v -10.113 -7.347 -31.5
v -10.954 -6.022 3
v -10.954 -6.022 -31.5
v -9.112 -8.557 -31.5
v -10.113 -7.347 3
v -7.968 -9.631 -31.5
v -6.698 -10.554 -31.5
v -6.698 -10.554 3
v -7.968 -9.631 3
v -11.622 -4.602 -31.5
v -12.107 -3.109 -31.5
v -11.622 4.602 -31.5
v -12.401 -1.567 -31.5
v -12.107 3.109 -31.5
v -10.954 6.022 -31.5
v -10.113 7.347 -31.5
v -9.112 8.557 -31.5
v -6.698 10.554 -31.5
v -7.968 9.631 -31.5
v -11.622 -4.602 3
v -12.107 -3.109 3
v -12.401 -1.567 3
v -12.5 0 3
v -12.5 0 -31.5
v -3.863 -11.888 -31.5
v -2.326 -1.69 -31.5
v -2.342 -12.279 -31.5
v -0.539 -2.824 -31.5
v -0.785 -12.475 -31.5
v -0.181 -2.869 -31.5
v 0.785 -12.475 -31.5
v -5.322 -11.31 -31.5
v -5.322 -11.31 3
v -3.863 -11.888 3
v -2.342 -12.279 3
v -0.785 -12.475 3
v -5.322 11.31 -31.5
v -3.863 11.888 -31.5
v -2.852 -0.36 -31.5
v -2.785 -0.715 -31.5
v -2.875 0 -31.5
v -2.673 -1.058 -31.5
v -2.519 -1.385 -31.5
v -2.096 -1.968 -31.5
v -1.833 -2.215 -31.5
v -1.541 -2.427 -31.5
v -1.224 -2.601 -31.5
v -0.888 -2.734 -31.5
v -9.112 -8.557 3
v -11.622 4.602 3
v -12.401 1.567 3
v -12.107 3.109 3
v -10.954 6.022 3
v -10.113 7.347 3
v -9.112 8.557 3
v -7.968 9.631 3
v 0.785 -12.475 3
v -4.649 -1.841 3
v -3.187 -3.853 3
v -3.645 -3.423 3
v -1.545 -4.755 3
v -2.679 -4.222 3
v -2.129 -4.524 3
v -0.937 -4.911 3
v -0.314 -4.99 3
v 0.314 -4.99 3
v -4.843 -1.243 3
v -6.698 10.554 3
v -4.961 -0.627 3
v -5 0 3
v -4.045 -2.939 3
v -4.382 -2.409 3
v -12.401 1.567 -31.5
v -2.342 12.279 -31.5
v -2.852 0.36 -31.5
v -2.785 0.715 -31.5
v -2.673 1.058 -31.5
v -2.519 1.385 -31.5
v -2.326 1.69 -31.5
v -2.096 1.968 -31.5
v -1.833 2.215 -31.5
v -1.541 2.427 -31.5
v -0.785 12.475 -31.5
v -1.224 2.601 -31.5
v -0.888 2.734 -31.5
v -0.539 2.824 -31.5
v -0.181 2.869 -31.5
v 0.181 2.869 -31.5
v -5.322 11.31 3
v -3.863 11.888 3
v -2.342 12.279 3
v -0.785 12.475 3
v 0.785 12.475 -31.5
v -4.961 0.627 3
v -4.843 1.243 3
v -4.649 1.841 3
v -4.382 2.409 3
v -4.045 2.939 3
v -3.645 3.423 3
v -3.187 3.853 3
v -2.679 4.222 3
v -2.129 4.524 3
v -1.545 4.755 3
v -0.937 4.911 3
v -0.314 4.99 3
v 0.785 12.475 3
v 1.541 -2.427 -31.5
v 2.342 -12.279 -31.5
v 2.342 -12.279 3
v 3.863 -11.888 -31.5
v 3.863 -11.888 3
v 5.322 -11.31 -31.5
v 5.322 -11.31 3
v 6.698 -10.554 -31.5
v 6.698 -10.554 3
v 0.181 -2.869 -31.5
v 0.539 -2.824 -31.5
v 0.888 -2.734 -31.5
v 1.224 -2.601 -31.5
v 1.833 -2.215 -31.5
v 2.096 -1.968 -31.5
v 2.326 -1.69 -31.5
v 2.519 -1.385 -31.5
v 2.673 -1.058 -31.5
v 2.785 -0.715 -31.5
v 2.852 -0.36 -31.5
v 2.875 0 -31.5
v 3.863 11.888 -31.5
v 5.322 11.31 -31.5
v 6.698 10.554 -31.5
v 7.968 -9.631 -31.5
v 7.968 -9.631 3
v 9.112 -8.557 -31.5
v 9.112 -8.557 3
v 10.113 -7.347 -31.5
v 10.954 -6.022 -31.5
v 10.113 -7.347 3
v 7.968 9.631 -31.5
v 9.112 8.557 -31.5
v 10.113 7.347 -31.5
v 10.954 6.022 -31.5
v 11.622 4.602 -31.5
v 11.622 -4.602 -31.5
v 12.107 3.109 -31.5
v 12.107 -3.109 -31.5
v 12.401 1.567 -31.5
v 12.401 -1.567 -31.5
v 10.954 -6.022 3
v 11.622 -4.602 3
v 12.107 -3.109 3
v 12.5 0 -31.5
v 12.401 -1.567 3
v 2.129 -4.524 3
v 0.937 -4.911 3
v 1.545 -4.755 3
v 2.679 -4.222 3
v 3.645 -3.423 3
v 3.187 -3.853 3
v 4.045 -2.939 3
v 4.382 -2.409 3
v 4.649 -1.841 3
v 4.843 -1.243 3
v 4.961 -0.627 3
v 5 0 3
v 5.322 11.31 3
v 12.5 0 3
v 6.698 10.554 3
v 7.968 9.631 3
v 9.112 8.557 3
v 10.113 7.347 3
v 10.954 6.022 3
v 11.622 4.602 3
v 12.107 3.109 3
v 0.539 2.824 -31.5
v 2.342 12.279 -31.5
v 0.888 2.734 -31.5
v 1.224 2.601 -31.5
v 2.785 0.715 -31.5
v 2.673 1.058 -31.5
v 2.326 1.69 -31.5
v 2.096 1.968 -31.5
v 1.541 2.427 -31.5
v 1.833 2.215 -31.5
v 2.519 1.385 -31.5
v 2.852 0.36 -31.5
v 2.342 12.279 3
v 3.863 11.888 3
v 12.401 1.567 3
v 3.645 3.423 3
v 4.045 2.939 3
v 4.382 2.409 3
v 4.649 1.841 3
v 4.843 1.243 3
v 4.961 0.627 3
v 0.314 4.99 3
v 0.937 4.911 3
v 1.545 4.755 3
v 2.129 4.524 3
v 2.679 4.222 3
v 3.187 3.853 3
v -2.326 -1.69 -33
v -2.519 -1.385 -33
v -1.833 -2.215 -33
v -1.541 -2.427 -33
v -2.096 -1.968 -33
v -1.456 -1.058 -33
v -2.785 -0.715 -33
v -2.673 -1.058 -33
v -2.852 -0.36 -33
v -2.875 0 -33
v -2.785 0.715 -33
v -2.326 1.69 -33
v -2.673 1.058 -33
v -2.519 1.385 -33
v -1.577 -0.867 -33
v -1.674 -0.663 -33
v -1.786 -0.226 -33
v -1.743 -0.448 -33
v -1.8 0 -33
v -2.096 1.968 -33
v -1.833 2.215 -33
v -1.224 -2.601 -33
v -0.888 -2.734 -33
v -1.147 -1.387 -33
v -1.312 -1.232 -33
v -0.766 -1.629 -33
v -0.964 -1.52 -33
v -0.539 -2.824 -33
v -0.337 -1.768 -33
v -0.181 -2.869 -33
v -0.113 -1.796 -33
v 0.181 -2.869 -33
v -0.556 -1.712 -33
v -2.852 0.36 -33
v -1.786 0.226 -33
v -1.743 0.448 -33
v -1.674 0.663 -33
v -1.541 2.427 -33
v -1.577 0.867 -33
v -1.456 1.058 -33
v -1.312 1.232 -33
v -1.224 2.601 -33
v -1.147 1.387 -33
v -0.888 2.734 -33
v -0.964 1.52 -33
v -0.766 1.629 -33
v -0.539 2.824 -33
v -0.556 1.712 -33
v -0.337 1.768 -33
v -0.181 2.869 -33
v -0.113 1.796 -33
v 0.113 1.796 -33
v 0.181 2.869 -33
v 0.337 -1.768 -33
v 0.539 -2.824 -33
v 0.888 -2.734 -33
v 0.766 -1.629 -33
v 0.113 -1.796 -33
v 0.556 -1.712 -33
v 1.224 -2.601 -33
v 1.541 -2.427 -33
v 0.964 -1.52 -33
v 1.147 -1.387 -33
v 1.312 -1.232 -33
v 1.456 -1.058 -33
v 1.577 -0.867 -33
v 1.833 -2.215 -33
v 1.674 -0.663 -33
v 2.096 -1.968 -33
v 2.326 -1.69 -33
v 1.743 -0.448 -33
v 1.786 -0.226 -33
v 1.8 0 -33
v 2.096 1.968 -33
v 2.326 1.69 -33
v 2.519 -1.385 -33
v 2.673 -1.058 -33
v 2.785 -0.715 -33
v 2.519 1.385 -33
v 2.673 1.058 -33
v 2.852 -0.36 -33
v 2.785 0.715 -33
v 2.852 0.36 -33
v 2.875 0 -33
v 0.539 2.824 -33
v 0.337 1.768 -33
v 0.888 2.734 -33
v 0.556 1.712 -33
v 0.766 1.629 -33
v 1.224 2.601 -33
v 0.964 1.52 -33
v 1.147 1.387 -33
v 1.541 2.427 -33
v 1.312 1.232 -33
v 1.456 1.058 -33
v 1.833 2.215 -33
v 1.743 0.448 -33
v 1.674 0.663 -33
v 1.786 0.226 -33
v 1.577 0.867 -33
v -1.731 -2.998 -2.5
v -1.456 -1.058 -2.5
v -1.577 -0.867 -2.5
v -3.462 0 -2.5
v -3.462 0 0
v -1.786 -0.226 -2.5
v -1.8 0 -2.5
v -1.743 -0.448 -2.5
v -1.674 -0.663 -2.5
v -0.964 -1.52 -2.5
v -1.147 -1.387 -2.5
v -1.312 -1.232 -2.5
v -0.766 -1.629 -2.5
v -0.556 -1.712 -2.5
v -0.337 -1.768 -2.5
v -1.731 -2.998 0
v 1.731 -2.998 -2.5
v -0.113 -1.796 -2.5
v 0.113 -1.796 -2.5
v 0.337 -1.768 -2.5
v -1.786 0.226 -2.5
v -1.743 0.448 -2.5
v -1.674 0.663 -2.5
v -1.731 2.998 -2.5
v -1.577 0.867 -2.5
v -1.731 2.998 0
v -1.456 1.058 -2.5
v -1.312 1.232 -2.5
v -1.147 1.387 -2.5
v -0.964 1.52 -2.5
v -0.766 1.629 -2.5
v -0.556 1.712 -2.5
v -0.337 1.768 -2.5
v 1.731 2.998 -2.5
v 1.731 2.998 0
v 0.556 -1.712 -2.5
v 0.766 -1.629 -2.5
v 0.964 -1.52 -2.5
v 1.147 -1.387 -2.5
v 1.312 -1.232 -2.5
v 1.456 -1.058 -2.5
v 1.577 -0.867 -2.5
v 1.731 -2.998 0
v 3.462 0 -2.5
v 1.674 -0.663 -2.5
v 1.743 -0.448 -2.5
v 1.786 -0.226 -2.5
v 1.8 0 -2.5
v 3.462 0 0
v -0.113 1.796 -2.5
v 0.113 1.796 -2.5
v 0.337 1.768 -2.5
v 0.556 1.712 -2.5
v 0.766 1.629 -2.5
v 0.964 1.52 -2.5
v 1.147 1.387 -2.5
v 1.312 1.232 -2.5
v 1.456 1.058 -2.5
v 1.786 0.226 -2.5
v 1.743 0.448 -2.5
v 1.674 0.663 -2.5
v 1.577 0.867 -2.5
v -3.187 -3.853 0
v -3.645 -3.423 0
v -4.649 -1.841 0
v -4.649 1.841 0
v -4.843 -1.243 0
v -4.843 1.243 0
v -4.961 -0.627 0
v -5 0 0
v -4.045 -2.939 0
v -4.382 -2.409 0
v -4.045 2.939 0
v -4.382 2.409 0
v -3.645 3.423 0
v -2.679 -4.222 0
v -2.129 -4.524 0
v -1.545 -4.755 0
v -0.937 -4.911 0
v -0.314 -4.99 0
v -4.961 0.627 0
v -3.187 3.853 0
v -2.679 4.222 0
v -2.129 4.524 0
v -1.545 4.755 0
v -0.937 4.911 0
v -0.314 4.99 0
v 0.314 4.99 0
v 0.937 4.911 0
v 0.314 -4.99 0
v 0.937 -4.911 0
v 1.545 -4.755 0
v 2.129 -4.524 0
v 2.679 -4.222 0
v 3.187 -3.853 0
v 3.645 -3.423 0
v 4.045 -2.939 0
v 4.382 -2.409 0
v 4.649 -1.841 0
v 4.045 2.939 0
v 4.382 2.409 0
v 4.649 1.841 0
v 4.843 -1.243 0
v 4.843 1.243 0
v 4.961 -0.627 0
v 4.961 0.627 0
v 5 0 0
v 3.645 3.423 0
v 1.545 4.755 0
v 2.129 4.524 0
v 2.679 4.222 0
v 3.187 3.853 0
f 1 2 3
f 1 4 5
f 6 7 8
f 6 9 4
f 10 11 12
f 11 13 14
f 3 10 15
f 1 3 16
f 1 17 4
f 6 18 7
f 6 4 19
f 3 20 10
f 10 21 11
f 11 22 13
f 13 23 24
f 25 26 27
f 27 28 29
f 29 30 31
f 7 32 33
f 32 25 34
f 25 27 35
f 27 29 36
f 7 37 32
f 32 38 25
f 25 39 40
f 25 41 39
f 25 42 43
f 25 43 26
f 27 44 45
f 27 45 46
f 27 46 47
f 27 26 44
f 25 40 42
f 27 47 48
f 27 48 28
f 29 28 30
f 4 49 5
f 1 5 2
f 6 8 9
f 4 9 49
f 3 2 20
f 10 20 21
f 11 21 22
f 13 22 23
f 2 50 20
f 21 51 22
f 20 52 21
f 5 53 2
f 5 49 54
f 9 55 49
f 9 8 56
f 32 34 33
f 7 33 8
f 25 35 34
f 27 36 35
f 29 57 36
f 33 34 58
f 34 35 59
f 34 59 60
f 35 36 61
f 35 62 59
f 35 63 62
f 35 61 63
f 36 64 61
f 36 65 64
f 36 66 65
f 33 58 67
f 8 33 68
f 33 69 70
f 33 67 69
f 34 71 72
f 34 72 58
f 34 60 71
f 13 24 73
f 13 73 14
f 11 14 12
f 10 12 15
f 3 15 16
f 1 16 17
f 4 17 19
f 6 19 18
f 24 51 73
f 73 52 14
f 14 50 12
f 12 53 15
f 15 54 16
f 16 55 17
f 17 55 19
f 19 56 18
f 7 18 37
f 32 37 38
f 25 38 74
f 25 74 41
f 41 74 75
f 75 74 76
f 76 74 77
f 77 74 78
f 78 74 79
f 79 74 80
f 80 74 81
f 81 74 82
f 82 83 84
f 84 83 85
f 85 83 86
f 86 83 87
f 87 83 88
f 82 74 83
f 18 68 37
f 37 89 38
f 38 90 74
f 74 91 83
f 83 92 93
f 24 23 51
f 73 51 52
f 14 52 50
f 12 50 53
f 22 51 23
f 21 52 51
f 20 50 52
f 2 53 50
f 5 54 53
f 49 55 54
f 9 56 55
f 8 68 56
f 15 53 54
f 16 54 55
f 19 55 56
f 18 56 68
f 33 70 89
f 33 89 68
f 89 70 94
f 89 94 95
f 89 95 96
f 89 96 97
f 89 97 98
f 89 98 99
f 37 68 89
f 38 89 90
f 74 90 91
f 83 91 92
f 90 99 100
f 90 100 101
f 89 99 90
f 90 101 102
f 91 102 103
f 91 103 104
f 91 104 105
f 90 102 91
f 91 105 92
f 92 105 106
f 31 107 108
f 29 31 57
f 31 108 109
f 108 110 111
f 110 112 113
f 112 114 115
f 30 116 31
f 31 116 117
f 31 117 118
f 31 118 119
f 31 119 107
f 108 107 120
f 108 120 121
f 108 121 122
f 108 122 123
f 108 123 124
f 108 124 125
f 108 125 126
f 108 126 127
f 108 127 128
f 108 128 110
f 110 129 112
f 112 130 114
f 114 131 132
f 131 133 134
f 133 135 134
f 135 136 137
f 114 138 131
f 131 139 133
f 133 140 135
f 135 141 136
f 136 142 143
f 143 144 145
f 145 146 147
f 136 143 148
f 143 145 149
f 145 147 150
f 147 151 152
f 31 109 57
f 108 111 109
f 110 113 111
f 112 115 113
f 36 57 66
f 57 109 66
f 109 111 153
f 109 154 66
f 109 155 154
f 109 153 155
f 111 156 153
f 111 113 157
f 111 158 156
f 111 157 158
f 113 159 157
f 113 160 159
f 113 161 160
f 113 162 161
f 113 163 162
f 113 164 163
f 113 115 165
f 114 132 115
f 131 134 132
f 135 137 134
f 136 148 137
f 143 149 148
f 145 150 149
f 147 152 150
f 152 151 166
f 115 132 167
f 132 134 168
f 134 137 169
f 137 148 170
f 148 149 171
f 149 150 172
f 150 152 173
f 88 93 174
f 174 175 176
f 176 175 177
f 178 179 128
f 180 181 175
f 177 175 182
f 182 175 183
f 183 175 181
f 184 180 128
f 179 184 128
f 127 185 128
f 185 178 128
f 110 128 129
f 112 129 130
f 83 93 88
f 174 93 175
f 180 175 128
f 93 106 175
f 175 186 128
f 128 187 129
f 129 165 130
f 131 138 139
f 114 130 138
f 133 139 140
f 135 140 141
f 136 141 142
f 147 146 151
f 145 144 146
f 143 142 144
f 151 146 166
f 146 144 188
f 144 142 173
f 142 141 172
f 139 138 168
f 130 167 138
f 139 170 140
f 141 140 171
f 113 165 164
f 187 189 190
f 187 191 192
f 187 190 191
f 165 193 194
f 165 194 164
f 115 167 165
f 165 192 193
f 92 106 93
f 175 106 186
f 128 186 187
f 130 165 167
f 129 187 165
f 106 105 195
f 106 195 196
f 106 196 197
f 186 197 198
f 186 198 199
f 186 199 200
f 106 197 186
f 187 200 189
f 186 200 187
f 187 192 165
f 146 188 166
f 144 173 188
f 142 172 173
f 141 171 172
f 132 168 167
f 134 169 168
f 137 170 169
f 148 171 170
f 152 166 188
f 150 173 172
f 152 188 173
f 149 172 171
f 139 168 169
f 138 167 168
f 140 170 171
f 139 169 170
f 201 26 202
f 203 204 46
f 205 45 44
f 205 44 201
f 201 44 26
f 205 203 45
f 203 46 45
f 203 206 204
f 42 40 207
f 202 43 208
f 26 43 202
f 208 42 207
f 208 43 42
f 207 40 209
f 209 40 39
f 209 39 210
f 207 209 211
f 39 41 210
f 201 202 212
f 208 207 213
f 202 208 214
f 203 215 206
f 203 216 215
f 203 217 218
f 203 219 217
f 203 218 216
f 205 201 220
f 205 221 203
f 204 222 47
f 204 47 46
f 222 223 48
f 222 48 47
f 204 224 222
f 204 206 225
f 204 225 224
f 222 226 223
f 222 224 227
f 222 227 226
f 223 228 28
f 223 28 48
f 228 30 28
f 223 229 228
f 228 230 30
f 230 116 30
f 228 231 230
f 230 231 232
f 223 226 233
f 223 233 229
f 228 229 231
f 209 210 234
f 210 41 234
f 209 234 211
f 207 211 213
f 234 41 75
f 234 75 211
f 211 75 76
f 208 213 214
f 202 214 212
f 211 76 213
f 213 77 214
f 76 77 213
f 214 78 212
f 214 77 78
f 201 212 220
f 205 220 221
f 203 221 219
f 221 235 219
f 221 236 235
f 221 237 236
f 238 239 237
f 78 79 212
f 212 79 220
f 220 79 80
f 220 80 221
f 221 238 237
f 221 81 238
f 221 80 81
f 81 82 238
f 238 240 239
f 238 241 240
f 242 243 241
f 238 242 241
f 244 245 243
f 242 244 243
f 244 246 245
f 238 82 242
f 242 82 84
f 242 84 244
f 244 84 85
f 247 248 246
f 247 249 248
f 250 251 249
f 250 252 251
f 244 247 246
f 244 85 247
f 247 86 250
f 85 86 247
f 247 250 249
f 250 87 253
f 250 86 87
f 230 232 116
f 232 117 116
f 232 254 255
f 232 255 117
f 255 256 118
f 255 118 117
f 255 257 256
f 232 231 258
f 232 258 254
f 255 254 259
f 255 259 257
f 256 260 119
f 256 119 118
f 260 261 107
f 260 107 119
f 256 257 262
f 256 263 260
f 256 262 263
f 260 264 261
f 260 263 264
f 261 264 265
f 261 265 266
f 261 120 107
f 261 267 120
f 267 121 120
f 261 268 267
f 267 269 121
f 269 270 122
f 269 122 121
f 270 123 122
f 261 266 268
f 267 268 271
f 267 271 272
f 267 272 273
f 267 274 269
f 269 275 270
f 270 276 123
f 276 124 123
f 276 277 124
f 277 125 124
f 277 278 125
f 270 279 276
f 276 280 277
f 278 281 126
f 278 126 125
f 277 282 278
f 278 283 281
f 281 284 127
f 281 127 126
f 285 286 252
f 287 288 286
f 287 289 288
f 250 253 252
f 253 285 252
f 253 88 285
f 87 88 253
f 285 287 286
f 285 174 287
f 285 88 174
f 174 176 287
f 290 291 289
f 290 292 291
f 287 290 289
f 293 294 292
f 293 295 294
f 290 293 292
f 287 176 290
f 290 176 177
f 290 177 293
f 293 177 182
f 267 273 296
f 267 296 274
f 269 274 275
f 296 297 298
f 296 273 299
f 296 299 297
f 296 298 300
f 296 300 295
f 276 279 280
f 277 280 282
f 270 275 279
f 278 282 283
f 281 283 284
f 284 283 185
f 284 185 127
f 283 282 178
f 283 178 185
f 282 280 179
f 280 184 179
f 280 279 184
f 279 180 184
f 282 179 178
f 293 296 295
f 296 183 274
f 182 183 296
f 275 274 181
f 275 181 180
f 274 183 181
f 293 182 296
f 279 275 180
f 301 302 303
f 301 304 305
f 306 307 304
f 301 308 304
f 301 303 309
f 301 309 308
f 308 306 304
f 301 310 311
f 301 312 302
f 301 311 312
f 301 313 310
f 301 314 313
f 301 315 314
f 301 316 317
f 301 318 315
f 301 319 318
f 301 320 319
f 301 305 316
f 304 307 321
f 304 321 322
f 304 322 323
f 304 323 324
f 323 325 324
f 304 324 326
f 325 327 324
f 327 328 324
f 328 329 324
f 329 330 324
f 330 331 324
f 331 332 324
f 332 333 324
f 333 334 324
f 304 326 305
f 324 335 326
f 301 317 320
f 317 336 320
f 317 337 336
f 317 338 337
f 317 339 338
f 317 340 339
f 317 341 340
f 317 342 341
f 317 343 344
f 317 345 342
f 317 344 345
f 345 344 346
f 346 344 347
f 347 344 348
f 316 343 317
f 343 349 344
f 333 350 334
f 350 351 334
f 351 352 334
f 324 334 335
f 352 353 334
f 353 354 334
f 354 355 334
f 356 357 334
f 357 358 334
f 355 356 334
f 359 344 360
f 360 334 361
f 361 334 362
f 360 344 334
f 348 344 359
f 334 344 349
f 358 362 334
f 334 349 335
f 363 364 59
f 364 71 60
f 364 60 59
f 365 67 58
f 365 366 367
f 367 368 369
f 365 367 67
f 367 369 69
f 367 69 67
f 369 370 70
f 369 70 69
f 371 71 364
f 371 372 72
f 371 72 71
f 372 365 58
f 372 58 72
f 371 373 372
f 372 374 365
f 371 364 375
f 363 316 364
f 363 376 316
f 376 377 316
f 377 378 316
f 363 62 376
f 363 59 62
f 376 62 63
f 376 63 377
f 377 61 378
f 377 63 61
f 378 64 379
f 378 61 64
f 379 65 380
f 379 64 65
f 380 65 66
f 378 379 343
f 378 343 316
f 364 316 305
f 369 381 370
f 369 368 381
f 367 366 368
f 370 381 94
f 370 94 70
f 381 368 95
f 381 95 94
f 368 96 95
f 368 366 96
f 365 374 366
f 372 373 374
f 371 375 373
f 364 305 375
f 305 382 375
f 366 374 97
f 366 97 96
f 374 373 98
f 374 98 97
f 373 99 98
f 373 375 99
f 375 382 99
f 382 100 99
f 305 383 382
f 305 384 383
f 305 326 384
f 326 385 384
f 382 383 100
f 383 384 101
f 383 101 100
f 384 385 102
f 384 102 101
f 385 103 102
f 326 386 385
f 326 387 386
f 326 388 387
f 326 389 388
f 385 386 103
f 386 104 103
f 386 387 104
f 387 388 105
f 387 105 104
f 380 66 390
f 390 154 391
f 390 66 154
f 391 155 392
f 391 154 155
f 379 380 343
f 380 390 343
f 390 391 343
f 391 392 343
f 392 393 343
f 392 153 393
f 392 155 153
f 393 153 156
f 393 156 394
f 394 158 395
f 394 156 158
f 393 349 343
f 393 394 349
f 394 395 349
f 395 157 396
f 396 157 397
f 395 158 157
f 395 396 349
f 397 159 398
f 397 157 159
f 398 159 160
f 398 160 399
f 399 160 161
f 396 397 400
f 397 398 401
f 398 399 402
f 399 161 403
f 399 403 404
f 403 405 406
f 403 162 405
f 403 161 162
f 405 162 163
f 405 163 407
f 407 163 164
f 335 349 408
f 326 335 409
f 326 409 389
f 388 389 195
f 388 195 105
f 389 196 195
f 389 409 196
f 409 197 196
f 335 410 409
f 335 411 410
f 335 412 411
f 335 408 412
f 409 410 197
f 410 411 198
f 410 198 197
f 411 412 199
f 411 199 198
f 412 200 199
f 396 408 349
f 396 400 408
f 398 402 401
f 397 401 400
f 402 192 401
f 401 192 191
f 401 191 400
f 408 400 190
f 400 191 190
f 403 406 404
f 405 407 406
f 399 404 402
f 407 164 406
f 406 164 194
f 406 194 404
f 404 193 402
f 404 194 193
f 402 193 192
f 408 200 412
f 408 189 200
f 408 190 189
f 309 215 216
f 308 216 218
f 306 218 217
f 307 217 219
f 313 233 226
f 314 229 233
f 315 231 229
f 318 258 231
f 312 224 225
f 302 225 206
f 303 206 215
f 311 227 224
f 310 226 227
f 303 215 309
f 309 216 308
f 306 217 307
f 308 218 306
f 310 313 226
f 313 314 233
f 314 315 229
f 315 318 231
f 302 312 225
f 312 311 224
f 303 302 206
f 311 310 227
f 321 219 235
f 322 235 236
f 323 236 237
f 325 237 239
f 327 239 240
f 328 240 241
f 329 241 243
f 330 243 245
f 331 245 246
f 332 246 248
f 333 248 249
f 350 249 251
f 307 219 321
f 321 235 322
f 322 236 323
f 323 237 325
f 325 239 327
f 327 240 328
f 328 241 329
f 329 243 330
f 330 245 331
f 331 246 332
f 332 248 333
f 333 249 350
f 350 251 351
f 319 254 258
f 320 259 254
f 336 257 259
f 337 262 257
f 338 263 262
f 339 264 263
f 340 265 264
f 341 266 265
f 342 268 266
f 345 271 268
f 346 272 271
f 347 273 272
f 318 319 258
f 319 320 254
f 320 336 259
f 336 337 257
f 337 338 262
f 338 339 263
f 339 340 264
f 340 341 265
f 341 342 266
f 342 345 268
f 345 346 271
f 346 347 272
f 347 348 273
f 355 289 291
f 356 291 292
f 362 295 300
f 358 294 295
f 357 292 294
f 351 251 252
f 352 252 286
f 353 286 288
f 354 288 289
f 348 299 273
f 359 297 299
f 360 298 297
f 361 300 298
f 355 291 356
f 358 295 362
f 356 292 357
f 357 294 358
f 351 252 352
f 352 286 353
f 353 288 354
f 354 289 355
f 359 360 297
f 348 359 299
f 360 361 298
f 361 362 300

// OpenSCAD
$fn = 50;

difference() {
	union() {
		translate(v = [0, 0, -31.5]) {
			cylinder(h = 34.5, r = 12.5);
		}
		#translate(v = [0, 0, -33.0]) {
			cylinder(h = 33, r = 2.875);
		}
	}
	union() {
		translate(v = [0, 0, 0]) {
			rotate(a = [0, 0, 0]) {
				difference() {
					union() {
						translate(v = [0, 0, -2.5]) {
							linear_extrude(height = 2.5) {
								polygon(points = [[3.4619999999999997, 0.0], [1.7310000000000003, 2.9981799479017264], [-1.7309999999999992, 2.9981799479017264], [-3.4619999999999997, 4.2397272186481365e-16], [-1.7310000000000014, -2.998179947901726], [1.7309999999999977, -2.9981799479017277]]);
							}
						}
					}
					union();
				}
			}
		}
		#cylinder(h = 3, r = 5.0);
		#translate(v = [0, 0, -100.0]) {
			cylinder(h = 200, r = 1.8);
		}
	}
}
